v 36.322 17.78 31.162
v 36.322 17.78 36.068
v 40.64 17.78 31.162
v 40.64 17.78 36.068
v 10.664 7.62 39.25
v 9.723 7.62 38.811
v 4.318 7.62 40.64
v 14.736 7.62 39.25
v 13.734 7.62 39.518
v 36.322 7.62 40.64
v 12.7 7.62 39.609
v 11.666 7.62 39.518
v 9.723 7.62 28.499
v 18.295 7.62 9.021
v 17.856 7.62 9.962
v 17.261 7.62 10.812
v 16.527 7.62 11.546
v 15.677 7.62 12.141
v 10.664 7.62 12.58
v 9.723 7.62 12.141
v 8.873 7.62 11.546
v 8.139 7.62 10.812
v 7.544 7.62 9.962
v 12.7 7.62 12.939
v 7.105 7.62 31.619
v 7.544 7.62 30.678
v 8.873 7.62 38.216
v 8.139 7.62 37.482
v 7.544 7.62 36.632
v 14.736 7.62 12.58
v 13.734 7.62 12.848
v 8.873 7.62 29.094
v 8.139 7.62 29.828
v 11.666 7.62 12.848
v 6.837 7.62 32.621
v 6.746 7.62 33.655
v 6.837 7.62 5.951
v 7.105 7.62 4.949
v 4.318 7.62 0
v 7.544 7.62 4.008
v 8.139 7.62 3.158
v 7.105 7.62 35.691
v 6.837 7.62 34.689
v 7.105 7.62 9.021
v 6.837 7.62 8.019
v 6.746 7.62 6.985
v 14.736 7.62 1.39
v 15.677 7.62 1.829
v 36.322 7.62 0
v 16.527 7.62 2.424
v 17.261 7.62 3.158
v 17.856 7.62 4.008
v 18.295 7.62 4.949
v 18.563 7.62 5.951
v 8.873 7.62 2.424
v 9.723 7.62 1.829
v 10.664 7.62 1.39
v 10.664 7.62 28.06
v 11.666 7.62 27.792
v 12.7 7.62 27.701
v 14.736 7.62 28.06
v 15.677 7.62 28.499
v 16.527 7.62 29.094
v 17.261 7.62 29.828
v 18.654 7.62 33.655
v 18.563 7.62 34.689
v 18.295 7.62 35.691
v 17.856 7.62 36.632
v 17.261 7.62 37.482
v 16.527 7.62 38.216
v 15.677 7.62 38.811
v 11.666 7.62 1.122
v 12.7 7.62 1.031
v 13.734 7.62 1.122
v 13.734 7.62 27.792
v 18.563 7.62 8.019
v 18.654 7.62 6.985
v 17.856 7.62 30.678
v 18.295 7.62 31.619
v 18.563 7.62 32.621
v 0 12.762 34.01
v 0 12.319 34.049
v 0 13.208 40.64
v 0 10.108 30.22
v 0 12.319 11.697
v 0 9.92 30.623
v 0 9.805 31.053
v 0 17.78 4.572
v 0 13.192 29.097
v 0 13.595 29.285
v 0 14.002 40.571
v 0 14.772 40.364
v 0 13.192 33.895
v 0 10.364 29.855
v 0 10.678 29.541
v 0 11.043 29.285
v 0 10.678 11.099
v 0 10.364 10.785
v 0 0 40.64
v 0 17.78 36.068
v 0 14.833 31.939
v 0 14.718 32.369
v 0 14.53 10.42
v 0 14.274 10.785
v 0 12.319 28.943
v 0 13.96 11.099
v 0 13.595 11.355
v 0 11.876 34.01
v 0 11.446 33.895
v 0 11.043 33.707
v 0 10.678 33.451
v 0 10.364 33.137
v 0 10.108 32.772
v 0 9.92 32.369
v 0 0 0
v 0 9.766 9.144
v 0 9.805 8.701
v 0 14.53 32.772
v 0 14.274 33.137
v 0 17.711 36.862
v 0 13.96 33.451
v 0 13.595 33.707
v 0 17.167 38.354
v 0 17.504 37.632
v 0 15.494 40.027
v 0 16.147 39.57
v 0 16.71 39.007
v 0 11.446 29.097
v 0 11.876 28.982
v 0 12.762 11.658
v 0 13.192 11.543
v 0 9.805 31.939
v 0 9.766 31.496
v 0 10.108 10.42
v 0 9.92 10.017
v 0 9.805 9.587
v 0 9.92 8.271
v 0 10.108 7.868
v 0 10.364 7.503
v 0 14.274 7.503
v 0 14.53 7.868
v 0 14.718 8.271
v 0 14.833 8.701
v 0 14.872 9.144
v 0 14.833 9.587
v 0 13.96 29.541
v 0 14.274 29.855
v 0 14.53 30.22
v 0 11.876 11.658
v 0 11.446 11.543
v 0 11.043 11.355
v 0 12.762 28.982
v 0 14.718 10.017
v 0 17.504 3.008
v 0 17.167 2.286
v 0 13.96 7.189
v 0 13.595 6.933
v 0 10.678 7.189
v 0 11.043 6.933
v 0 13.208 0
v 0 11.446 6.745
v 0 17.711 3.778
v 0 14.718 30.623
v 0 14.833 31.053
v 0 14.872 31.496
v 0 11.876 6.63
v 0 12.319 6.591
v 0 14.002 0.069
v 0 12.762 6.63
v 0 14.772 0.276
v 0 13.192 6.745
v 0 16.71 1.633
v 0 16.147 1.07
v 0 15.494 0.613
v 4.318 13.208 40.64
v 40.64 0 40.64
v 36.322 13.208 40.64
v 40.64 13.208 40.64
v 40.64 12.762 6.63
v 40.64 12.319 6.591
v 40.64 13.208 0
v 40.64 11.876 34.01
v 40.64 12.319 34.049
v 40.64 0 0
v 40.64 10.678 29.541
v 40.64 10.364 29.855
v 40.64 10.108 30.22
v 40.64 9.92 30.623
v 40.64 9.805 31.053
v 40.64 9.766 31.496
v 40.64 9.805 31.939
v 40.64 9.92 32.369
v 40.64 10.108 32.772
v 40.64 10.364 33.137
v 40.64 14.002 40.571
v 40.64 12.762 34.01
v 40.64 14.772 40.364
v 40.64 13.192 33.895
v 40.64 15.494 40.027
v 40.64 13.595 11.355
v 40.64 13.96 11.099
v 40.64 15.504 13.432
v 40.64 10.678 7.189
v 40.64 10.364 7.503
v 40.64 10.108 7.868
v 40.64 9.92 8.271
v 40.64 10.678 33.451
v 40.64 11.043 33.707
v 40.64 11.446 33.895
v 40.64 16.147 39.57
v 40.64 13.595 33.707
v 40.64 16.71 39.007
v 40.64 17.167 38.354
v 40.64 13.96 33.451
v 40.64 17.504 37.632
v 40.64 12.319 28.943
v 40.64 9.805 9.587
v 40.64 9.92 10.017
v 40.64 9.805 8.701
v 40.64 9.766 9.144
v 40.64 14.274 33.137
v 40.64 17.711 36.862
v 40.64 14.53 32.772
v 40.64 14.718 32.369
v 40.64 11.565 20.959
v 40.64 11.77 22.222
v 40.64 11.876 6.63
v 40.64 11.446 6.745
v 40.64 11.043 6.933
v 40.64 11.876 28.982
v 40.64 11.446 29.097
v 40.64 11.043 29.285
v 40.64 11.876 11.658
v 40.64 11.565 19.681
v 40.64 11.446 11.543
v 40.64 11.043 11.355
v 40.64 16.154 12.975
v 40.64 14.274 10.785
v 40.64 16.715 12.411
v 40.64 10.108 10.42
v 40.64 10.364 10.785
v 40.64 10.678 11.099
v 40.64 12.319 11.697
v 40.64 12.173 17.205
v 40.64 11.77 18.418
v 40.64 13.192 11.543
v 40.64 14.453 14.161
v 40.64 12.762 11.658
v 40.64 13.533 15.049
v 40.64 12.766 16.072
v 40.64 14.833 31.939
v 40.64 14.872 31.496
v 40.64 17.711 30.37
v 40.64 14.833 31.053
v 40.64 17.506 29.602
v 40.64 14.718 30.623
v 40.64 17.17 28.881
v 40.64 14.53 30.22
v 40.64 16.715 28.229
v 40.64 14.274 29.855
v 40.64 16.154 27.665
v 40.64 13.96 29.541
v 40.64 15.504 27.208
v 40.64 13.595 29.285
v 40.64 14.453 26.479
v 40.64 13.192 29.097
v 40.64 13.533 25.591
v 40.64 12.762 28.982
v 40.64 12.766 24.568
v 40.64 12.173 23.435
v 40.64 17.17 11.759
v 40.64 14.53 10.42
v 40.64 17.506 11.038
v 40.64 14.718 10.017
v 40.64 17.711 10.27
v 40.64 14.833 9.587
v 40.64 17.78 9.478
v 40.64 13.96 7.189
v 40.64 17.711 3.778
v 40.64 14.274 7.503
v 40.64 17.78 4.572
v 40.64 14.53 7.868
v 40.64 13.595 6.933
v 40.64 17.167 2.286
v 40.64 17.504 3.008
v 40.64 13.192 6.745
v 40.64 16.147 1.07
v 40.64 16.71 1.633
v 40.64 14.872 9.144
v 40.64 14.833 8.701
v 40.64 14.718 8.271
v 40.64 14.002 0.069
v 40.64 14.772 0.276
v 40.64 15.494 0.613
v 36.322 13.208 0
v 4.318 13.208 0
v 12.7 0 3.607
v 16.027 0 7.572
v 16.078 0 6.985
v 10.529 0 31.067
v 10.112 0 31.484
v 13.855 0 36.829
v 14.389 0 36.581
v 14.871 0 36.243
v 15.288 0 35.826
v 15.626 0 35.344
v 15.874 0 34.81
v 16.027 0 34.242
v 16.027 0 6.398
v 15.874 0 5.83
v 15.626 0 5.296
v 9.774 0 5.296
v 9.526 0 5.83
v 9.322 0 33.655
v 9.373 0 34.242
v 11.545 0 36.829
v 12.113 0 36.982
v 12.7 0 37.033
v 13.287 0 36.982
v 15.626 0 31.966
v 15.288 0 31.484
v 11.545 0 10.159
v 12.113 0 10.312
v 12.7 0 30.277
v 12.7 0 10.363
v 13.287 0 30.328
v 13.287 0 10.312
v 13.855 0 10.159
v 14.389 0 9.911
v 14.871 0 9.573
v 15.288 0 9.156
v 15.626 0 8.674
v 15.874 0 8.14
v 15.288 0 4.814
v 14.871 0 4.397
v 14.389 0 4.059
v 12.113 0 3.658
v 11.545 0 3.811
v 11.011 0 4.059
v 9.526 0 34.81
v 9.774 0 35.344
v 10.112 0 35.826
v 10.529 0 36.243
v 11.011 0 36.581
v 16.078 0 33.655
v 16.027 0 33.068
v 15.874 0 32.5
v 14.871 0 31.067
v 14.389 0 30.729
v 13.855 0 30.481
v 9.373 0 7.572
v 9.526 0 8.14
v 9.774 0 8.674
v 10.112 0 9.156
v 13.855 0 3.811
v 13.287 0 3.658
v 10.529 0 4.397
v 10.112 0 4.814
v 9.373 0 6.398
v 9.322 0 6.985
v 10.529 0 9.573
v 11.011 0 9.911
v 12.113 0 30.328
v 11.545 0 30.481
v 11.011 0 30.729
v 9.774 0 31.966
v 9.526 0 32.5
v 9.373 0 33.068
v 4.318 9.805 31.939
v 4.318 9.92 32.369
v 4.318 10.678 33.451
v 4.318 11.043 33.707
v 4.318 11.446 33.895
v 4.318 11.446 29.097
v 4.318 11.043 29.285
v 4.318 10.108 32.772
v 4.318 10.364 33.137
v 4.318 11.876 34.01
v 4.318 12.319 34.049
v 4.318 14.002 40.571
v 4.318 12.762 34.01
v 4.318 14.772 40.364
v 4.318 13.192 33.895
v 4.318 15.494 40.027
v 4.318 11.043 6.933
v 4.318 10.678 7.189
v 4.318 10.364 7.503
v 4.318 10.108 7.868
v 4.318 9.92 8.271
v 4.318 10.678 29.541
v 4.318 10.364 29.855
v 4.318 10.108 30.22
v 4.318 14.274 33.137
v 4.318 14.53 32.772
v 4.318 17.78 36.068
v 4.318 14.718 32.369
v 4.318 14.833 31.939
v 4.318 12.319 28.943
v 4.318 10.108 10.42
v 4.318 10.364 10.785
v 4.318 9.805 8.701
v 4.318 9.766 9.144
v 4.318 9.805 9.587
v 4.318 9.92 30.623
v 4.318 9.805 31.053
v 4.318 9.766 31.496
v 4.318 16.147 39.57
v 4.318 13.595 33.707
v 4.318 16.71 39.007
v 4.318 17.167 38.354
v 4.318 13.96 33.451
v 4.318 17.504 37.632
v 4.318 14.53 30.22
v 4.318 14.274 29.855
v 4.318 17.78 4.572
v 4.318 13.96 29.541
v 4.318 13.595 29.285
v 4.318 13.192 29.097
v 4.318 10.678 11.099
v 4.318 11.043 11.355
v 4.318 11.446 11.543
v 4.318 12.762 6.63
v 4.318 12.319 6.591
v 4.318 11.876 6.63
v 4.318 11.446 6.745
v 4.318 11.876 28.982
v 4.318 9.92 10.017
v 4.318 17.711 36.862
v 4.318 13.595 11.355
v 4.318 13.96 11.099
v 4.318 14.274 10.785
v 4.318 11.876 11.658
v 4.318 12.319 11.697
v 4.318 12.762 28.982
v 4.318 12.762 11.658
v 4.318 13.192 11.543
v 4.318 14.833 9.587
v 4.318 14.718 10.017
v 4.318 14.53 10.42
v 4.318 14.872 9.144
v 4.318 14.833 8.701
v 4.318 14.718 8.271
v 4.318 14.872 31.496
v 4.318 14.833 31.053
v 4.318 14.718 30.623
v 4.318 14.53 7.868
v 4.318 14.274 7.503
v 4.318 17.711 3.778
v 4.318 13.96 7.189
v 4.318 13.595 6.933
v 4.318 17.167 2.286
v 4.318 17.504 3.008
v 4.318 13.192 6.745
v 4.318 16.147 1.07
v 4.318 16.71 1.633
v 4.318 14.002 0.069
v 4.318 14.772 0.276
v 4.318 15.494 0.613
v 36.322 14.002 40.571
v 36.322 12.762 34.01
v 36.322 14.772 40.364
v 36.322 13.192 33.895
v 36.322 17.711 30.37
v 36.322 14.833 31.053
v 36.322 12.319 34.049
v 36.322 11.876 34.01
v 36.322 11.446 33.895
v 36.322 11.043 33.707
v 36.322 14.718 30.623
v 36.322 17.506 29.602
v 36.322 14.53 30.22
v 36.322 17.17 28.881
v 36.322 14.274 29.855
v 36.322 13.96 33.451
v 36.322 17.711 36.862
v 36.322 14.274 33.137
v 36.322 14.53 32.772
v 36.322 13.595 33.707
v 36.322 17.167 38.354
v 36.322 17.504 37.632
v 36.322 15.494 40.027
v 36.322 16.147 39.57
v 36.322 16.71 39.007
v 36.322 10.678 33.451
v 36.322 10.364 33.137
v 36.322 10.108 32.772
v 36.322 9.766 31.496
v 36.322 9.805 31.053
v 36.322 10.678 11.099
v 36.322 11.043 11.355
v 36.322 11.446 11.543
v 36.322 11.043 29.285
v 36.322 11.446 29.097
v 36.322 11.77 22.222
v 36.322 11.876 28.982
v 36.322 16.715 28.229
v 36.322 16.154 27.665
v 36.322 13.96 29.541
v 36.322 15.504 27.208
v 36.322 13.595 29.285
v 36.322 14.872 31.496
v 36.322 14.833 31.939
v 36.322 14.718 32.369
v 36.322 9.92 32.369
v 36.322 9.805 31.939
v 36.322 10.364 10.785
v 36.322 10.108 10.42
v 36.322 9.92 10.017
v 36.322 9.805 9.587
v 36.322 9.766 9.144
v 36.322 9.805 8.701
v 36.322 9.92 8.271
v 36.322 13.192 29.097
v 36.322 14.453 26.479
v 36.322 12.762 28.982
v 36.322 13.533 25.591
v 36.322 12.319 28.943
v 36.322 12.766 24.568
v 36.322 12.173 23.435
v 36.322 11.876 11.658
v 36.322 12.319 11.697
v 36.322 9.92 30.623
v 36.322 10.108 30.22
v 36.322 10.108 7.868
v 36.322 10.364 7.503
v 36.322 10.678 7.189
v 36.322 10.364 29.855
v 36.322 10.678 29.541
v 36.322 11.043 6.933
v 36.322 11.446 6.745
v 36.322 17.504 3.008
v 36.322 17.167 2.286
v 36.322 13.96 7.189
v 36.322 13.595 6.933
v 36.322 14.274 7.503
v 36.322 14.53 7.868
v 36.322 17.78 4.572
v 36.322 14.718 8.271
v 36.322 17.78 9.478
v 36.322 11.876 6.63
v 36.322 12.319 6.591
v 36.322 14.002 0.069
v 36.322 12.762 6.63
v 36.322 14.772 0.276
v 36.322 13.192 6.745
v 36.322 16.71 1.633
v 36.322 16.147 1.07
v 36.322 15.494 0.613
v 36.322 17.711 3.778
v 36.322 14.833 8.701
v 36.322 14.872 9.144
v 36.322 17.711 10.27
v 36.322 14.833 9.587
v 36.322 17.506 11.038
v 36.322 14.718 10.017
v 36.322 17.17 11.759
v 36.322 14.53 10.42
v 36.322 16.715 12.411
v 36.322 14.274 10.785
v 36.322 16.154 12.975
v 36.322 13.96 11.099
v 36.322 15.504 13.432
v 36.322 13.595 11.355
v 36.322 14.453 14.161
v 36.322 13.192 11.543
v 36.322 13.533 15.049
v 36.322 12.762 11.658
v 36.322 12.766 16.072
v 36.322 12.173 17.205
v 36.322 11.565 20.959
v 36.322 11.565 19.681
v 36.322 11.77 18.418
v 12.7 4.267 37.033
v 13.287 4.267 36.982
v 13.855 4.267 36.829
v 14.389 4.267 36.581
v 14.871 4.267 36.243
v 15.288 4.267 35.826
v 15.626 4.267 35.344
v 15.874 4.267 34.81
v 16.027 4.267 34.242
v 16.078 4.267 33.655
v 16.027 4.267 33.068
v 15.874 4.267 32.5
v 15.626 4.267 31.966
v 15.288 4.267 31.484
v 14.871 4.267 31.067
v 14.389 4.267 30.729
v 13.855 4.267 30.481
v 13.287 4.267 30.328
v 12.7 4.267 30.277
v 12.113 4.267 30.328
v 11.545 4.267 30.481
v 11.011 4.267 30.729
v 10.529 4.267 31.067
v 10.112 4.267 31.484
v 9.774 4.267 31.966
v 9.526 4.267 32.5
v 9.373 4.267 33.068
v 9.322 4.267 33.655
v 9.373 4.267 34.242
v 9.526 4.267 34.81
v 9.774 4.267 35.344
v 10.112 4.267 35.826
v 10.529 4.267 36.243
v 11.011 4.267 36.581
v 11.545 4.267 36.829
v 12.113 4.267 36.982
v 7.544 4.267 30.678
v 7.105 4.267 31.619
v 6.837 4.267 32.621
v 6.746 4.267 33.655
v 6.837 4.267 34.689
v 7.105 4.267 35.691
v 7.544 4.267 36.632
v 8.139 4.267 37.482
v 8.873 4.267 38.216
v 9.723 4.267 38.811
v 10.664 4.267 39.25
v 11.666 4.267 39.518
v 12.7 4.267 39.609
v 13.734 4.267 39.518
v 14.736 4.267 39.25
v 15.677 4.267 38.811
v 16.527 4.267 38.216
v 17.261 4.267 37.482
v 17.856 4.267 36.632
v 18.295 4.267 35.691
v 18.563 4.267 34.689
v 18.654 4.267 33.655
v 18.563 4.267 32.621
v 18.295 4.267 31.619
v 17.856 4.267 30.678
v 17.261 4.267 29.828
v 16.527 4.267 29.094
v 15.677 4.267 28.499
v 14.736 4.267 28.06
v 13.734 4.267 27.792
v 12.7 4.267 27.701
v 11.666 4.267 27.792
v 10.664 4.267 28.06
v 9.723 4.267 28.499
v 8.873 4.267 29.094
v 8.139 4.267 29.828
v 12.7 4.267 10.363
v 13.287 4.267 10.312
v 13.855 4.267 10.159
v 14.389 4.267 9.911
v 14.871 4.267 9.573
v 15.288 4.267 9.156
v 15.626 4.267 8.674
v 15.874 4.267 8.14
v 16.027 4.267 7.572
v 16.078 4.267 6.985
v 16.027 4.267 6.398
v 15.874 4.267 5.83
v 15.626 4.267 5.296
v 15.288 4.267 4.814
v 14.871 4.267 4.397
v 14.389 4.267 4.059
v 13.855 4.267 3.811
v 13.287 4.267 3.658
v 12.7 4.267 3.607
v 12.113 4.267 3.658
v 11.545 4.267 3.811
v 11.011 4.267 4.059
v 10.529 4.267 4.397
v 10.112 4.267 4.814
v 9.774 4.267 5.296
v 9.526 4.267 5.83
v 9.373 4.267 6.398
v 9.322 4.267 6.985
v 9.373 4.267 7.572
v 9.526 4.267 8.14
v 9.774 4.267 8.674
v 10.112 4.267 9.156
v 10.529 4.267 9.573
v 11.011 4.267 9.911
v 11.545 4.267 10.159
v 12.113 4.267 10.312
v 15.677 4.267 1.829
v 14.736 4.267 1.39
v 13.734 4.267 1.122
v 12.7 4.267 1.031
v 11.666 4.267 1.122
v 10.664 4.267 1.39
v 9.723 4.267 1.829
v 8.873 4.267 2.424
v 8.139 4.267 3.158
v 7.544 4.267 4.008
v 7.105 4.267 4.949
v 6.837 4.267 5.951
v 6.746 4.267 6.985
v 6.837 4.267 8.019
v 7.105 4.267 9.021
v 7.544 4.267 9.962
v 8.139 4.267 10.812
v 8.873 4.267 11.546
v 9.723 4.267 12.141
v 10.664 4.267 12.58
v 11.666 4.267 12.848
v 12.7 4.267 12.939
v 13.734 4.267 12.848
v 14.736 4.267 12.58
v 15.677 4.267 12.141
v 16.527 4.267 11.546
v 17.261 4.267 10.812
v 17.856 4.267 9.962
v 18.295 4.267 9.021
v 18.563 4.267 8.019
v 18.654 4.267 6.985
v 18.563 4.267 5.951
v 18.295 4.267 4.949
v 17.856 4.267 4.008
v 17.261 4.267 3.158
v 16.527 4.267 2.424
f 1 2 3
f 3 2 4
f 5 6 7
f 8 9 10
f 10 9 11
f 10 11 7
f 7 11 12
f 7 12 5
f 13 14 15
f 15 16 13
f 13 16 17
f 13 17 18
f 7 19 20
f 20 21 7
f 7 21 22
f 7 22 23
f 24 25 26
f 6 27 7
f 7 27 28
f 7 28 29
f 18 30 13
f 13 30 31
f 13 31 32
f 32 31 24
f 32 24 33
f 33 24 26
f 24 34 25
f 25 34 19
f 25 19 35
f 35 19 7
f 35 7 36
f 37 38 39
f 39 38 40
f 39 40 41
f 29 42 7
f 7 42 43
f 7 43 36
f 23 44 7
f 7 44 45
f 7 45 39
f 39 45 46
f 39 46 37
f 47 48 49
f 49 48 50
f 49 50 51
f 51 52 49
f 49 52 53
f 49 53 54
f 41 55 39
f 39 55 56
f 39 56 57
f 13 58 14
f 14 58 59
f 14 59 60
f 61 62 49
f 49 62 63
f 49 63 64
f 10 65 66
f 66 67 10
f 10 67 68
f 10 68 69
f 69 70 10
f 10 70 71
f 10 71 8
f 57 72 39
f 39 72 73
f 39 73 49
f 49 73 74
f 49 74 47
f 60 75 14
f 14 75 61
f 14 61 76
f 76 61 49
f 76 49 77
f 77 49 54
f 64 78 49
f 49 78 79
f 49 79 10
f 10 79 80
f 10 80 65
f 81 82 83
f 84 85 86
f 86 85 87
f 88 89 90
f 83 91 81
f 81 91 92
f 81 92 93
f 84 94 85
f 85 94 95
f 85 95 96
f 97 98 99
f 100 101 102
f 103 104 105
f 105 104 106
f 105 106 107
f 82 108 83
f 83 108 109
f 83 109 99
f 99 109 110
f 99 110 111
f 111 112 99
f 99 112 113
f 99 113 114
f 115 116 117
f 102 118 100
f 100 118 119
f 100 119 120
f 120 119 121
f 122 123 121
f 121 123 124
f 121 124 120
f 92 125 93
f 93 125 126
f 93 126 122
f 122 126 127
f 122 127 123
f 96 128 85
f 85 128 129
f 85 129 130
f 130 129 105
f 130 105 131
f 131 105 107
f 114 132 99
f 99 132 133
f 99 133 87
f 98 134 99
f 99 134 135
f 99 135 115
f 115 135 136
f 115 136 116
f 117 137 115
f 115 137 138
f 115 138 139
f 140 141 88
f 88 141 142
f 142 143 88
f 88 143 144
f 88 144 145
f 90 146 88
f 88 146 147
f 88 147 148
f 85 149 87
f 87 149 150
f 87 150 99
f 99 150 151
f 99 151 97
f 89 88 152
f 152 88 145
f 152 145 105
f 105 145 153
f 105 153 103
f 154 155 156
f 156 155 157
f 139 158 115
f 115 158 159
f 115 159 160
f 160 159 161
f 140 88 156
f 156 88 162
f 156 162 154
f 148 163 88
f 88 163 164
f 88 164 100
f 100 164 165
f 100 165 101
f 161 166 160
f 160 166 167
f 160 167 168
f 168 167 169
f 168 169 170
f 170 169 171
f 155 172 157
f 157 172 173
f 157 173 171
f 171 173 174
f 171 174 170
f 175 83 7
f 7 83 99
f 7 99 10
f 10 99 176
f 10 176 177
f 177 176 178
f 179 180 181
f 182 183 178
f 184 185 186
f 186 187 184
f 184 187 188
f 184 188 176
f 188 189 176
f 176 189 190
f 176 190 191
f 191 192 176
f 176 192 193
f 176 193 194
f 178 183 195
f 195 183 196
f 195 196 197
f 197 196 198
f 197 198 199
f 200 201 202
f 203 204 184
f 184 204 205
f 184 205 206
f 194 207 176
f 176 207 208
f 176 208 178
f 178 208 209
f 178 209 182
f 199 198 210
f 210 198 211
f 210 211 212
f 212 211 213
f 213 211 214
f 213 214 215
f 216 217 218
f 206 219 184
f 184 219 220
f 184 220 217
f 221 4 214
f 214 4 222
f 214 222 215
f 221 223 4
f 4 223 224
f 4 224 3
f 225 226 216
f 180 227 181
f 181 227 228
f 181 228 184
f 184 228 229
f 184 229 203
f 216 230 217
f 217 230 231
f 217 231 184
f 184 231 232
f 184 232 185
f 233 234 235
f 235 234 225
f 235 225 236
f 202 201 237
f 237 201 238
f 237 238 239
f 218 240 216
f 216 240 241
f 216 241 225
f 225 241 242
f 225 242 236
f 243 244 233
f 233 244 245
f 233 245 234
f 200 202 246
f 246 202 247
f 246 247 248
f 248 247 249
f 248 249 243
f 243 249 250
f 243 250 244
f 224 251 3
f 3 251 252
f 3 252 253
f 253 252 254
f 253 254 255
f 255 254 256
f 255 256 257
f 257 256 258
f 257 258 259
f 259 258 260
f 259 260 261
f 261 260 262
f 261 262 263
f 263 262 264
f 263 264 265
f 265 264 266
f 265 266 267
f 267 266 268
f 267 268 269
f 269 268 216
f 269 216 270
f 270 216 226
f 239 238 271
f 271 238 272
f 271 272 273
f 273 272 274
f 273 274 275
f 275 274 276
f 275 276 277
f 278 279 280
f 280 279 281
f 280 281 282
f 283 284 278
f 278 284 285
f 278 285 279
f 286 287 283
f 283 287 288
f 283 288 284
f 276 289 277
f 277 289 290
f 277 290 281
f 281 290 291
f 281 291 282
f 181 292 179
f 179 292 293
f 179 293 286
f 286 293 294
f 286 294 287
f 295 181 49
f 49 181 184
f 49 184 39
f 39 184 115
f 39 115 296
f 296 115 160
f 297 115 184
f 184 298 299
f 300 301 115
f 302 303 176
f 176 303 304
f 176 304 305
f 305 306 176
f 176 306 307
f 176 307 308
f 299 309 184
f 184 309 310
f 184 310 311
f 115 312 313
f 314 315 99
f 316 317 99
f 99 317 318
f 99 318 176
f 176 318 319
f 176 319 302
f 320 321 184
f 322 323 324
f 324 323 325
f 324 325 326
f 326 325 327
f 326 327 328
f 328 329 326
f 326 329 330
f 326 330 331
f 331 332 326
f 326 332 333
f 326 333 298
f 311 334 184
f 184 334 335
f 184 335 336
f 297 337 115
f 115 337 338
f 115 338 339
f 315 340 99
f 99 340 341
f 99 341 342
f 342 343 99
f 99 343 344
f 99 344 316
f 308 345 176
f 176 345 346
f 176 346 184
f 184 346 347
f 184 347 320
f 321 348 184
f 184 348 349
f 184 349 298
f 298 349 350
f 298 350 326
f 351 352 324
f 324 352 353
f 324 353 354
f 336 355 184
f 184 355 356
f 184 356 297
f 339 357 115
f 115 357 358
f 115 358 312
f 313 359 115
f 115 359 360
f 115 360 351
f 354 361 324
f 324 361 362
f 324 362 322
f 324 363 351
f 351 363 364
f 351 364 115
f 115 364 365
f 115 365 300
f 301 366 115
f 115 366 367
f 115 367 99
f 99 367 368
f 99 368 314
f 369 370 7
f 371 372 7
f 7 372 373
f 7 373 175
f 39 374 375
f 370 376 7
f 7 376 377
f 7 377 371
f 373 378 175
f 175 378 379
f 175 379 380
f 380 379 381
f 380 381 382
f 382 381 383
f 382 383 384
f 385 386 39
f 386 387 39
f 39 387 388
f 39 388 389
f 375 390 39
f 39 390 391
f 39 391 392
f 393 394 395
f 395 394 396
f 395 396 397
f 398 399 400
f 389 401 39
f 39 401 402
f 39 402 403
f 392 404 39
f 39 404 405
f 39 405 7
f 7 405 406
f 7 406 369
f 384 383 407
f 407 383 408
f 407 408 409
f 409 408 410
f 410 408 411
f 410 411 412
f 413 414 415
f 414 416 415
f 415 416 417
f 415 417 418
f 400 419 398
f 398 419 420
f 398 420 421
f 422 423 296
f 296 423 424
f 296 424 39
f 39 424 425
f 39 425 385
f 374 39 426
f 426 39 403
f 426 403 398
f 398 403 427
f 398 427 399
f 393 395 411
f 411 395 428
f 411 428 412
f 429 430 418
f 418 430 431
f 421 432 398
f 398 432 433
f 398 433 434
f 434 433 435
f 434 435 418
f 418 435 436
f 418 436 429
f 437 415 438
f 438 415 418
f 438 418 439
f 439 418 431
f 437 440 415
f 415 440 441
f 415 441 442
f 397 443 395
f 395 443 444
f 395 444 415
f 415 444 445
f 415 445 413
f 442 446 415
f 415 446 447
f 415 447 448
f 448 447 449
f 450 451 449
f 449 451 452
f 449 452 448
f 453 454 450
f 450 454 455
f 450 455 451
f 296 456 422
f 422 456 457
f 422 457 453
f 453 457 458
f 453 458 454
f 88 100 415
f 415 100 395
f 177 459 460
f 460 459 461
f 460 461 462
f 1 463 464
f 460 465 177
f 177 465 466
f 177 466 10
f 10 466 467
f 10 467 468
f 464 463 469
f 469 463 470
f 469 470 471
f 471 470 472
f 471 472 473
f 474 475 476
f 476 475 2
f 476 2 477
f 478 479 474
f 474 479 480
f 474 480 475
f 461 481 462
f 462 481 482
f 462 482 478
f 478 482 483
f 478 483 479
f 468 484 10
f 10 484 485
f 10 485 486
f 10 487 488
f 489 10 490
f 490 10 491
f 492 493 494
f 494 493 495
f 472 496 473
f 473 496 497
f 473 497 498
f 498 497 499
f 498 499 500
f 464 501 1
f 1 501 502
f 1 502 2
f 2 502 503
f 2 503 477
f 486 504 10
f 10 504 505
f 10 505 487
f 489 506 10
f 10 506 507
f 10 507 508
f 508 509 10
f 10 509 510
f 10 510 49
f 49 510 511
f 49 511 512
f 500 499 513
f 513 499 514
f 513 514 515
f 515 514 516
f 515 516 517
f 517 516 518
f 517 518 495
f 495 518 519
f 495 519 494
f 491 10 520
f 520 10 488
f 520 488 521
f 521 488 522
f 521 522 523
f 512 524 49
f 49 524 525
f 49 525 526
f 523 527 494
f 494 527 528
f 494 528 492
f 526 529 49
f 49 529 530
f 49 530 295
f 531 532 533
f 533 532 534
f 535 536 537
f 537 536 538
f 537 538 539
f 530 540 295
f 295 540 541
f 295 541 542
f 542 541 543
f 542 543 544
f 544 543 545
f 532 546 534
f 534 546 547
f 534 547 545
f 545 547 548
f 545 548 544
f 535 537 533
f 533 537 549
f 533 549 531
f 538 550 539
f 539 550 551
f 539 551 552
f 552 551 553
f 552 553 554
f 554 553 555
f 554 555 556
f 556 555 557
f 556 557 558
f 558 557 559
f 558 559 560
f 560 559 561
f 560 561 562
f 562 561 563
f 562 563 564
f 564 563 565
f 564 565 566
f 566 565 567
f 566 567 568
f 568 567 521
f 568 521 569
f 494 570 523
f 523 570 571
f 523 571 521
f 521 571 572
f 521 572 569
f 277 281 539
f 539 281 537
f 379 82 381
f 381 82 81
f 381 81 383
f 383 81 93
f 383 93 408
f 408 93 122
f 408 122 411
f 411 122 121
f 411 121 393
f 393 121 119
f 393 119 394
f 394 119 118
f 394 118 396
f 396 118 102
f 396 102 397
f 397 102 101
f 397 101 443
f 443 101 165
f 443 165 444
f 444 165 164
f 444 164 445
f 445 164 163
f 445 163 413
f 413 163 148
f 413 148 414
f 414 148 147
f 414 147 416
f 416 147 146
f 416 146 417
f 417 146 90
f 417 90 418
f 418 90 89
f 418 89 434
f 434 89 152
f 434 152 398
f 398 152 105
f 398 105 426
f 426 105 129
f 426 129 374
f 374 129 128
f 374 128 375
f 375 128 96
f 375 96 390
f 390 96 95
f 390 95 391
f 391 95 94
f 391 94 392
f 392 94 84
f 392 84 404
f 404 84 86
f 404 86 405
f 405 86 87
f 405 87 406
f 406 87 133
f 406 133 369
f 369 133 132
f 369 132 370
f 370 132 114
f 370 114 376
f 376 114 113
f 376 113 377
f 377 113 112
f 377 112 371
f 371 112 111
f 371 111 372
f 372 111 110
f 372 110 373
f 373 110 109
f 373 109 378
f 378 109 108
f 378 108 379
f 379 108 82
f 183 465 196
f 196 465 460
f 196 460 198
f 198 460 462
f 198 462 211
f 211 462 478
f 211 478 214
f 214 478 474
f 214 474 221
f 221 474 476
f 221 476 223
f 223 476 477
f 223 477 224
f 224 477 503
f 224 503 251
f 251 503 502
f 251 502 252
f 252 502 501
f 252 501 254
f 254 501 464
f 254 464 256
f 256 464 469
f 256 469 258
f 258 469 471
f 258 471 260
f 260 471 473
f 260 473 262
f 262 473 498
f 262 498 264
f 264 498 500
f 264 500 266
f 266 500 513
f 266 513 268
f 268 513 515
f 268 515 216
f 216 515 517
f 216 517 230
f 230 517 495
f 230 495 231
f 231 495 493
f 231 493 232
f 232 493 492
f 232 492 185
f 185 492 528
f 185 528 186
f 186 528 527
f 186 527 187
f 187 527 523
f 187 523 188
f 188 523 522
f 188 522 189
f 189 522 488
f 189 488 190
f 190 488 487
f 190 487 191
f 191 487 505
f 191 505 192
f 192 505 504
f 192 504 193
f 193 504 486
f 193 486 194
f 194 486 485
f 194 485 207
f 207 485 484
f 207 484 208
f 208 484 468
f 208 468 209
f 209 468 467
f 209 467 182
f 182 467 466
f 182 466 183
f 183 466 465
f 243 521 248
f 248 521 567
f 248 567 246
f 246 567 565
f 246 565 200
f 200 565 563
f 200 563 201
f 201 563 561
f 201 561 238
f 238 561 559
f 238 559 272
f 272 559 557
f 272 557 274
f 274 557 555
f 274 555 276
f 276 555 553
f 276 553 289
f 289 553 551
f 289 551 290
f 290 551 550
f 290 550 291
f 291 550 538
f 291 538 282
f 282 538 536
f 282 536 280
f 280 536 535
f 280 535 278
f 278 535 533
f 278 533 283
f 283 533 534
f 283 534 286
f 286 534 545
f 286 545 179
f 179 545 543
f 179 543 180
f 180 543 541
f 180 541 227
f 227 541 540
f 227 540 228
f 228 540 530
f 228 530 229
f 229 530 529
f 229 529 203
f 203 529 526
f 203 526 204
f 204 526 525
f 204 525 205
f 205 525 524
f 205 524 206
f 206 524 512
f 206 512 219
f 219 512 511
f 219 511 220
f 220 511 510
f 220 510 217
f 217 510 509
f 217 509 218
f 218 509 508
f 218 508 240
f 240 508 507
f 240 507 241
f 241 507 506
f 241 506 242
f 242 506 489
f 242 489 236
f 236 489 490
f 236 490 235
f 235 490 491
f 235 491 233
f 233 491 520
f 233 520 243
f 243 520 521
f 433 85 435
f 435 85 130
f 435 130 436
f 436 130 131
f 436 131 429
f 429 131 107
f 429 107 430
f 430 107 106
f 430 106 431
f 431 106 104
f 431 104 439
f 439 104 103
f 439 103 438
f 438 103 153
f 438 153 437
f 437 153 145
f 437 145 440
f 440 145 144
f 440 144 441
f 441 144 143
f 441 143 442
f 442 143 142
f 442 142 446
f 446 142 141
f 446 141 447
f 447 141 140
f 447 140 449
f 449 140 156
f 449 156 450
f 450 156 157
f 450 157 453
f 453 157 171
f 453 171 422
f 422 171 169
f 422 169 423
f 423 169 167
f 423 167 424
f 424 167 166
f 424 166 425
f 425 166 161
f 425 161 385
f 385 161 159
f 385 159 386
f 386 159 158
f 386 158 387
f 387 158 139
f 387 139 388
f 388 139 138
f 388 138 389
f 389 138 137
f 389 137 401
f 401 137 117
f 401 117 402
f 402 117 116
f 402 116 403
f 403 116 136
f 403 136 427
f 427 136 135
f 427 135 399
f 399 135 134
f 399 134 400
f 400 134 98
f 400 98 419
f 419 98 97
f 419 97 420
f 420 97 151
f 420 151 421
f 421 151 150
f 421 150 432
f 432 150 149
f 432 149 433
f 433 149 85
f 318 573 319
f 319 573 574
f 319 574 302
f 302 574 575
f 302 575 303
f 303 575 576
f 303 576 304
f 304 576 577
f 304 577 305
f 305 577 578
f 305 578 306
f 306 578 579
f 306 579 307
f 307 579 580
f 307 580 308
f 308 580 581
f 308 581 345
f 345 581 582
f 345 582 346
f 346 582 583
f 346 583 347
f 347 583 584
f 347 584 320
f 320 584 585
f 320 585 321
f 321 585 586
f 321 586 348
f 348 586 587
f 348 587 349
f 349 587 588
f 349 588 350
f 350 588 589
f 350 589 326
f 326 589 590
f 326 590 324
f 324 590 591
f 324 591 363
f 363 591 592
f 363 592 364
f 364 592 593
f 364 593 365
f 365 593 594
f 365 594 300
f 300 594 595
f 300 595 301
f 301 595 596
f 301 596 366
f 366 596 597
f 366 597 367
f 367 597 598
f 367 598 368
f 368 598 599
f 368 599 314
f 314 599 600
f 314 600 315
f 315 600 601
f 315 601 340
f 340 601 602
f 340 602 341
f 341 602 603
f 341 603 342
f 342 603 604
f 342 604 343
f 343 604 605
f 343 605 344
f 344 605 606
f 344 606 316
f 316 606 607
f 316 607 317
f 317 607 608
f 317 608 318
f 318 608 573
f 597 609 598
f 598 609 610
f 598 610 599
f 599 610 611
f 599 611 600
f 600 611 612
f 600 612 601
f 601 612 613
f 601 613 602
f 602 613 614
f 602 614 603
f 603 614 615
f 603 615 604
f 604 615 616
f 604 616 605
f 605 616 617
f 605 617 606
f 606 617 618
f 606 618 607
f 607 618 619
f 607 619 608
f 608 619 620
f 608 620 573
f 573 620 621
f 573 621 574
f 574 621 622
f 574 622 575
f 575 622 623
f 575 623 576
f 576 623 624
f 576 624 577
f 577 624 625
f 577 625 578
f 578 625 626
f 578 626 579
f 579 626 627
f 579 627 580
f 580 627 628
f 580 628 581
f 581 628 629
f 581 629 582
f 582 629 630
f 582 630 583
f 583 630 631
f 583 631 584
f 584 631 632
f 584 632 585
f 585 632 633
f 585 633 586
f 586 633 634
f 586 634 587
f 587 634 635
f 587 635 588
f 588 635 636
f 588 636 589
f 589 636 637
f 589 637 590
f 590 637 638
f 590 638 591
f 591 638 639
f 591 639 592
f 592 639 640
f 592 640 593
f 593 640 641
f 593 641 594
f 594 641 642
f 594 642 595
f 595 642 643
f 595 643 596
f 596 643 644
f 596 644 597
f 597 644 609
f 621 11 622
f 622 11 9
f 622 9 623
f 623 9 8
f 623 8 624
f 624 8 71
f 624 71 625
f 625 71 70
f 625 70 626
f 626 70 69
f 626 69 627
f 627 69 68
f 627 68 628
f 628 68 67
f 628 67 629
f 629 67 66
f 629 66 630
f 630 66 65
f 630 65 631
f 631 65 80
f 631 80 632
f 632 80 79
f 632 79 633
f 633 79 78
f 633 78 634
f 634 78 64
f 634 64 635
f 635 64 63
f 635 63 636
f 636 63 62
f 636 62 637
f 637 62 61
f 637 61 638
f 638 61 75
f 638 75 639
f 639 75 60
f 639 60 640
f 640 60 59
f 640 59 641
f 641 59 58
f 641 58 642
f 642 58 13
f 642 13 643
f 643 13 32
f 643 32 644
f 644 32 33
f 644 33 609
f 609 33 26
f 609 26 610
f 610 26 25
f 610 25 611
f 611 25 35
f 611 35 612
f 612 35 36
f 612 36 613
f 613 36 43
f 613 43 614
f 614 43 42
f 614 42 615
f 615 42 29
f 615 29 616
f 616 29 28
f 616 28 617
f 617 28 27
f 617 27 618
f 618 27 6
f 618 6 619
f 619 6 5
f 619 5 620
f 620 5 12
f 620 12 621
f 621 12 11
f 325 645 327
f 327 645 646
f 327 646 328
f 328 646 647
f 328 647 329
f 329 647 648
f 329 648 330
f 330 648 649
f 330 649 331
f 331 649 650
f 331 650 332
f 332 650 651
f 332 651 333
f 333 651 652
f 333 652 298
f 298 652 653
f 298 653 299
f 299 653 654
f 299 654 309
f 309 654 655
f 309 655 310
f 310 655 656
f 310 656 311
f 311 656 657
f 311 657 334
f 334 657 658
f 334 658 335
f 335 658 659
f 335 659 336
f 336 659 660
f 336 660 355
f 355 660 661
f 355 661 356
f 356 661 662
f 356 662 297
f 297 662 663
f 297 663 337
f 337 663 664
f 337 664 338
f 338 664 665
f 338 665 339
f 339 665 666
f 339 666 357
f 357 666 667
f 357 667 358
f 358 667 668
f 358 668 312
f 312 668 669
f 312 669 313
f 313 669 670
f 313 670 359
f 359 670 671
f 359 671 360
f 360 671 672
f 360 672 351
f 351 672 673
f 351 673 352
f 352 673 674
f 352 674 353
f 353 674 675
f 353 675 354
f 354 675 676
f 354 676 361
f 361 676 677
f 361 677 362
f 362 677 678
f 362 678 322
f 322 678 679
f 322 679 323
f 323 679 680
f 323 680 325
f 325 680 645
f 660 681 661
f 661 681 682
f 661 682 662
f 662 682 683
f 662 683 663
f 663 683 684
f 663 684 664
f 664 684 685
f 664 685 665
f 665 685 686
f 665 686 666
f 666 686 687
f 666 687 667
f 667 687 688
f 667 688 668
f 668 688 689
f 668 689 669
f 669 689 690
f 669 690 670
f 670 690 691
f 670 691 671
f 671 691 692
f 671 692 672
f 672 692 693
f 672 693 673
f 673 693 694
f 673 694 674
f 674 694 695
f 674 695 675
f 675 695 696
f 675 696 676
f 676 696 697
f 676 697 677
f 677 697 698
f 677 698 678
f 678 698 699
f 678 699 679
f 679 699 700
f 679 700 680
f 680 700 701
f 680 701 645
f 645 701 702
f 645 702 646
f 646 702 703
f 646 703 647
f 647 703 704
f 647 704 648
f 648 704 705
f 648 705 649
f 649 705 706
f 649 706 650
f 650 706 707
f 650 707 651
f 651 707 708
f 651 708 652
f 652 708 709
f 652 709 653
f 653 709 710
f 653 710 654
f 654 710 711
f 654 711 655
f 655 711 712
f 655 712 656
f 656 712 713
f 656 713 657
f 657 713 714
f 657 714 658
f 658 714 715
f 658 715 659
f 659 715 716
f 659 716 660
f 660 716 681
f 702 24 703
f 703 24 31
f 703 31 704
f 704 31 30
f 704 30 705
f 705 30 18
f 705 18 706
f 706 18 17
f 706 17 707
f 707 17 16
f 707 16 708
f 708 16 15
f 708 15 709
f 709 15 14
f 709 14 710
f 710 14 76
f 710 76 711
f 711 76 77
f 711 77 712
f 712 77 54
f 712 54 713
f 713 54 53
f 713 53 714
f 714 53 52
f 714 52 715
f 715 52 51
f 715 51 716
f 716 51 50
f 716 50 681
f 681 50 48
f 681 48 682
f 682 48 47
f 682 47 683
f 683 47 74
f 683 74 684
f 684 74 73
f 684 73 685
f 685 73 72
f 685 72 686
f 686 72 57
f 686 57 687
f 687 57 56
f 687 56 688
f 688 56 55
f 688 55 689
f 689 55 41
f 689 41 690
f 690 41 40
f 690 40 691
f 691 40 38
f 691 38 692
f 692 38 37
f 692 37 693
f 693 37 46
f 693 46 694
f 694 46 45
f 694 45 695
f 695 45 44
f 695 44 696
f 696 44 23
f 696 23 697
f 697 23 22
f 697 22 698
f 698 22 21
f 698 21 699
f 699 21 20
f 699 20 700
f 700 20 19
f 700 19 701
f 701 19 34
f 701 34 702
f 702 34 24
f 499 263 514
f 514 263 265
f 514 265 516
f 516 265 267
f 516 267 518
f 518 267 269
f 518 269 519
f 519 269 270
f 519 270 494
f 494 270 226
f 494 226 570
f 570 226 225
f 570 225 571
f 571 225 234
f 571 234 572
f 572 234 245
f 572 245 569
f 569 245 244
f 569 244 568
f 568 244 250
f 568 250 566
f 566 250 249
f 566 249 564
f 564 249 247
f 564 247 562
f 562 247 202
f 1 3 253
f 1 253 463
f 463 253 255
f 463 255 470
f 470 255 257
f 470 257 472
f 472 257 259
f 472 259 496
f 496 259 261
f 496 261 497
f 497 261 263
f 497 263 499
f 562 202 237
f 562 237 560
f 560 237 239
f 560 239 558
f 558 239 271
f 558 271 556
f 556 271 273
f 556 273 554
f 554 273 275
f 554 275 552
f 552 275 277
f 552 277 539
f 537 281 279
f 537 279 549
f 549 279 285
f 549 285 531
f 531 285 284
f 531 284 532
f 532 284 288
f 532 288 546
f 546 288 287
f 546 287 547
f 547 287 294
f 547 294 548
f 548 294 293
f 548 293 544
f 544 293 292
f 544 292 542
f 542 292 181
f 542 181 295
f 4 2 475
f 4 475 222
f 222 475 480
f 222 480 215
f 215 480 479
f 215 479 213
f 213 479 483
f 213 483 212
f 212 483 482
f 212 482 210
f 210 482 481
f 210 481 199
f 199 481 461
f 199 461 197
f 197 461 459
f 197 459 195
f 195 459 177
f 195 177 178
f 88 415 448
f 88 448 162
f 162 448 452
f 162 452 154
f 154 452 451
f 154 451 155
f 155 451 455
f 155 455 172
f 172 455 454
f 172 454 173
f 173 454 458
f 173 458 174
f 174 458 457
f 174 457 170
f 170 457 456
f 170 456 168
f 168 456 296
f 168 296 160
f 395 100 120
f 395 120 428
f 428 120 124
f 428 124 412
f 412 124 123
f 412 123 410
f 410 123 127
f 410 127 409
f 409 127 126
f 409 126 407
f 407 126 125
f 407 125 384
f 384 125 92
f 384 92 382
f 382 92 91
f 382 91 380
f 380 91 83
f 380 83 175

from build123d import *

# Parameters (mm, degrees)
SKETCH1_W                                        = 40.64
SKETCH1_H                                        = 40.64
BOSS_EXTRUDE1_DEPTH                              = 7.62
SKETCH2_W                                        = 4.318
SKETCH2_H                                        = 40.64
BOSS_EXTRUDE2_DEPTH                              = 10.16
F_10_CLEARANCE_HOLE1_D                           = 5.1054
CBORE_FOR_1_4_BUTTON_HEAD_CAP_SCREW1_D           = 6.7564
CBORE_FOR_1_4_BUTTON_HEAD_CAP_SCREW1_CBORE_D     = 11.90752
CBORE_FOR_1_4_BUTTON_HEAD_CAP_SCREW1_CBORE_DEPTH = 3.3528
CUT_EXTRUDE1_REACH                               = 62.161
SKETCH8_R                                        = 7.965368028
FILLET1_R                                        = 4.572


with BuildPart() as part:
    # Sketch1 → Boss-Extrude1 (new body)
    with BuildSketch(Plane(origin=(0, 0, 0), x_dir=(1, 0, 0), z_dir=(0, 1, 0))):
        with Locations((20.32, -20.32)):
            Rectangle(SKETCH1_W, SKETCH1_H)
    extrude(amount=BOSS_EXTRUDE1_DEPTH)

    # Sketch2 → Boss-Extrude2 (add)
    with BuildSketch(Plane(origin=(0, 7.62, 0), x_dir=(1, 0, 0), z_dir=(0, 1, 0))):
        with Locations((2.159, -20.32)):
            Rectangle(SKETCH2_W, SKETCH2_H)
        with Locations((38.481, -20.32)):
            Rectangle(SKETCH2_W, SKETCH2_H)
    extrude(amount=BOSS_EXTRUDE2_DEPTH)

    # #10 Clearance Hole1 (through all)
    with Locations(Plane.ZY):
        with Locations((9.144, 12.319), (31.496, 12.319)):
            Hole(F_10_CLEARANCE_HOLE1_D / 2)

    # CBORE for 1/4 Button Head Cap Screw1 (through all)
    with Locations(Plane(origin=(0, 7.62, 0), x_dir=(1, 0, 0), z_dir=(0, 1, 0))):
        with Locations((12.7, -6.985), (12.7, -33.655)):
            CounterBoreHole(CBORE_FOR_1_4_BUTTON_HEAD_CAP_SCREW1_D / 2, CBORE_FOR_1_4_BUTTON_HEAD_CAP_SCREW1_CBORE_D / 2, CBORE_FOR_1_4_BUTTON_HEAD_CAP_SCREW1_CBORE_DEPTH)

    # Sketch8 → Cut-Extrude1 (cut, up to next)
    with BuildSketch(Plane(origin=(40.64, 0, 0), x_dir=(0, 0, -1), z_dir=(1, 0, 0)), mode=Mode.PRIVATE) as cut_extrude1_sk1:
        with Locations((-20.32, 19.504553012)):
            Circle(SKETCH8_R)
    cut_extrude1_tool1 = extrude(cut_extrude1_sk1.sketch, amount=-CUT_EXTRUDE1_REACH, mode=Mode.PRIVATE) & part.part
    add(cut_extrude1_tool1.solids().sort_by_distance((40.64, 19.504553, 20.32))[0], mode=Mode.SUBTRACT)

    # Fillet1
    fillet1_edges = [part.edges().sort_by_distance(p)[0] for p in [
        (2.159, 17.78, 40.64),
        (2.159, 17.78, 0),
        (38.481, 17.78, 40.64),
        (38.481, 17.78, 0),
        (38.481, 17.78, 28.096439078),
        (38.481, 17.78, 12.543560922),
    ]]
    fillet(fillet1_edges, radius=FILLET1_R)


solid = part.part
